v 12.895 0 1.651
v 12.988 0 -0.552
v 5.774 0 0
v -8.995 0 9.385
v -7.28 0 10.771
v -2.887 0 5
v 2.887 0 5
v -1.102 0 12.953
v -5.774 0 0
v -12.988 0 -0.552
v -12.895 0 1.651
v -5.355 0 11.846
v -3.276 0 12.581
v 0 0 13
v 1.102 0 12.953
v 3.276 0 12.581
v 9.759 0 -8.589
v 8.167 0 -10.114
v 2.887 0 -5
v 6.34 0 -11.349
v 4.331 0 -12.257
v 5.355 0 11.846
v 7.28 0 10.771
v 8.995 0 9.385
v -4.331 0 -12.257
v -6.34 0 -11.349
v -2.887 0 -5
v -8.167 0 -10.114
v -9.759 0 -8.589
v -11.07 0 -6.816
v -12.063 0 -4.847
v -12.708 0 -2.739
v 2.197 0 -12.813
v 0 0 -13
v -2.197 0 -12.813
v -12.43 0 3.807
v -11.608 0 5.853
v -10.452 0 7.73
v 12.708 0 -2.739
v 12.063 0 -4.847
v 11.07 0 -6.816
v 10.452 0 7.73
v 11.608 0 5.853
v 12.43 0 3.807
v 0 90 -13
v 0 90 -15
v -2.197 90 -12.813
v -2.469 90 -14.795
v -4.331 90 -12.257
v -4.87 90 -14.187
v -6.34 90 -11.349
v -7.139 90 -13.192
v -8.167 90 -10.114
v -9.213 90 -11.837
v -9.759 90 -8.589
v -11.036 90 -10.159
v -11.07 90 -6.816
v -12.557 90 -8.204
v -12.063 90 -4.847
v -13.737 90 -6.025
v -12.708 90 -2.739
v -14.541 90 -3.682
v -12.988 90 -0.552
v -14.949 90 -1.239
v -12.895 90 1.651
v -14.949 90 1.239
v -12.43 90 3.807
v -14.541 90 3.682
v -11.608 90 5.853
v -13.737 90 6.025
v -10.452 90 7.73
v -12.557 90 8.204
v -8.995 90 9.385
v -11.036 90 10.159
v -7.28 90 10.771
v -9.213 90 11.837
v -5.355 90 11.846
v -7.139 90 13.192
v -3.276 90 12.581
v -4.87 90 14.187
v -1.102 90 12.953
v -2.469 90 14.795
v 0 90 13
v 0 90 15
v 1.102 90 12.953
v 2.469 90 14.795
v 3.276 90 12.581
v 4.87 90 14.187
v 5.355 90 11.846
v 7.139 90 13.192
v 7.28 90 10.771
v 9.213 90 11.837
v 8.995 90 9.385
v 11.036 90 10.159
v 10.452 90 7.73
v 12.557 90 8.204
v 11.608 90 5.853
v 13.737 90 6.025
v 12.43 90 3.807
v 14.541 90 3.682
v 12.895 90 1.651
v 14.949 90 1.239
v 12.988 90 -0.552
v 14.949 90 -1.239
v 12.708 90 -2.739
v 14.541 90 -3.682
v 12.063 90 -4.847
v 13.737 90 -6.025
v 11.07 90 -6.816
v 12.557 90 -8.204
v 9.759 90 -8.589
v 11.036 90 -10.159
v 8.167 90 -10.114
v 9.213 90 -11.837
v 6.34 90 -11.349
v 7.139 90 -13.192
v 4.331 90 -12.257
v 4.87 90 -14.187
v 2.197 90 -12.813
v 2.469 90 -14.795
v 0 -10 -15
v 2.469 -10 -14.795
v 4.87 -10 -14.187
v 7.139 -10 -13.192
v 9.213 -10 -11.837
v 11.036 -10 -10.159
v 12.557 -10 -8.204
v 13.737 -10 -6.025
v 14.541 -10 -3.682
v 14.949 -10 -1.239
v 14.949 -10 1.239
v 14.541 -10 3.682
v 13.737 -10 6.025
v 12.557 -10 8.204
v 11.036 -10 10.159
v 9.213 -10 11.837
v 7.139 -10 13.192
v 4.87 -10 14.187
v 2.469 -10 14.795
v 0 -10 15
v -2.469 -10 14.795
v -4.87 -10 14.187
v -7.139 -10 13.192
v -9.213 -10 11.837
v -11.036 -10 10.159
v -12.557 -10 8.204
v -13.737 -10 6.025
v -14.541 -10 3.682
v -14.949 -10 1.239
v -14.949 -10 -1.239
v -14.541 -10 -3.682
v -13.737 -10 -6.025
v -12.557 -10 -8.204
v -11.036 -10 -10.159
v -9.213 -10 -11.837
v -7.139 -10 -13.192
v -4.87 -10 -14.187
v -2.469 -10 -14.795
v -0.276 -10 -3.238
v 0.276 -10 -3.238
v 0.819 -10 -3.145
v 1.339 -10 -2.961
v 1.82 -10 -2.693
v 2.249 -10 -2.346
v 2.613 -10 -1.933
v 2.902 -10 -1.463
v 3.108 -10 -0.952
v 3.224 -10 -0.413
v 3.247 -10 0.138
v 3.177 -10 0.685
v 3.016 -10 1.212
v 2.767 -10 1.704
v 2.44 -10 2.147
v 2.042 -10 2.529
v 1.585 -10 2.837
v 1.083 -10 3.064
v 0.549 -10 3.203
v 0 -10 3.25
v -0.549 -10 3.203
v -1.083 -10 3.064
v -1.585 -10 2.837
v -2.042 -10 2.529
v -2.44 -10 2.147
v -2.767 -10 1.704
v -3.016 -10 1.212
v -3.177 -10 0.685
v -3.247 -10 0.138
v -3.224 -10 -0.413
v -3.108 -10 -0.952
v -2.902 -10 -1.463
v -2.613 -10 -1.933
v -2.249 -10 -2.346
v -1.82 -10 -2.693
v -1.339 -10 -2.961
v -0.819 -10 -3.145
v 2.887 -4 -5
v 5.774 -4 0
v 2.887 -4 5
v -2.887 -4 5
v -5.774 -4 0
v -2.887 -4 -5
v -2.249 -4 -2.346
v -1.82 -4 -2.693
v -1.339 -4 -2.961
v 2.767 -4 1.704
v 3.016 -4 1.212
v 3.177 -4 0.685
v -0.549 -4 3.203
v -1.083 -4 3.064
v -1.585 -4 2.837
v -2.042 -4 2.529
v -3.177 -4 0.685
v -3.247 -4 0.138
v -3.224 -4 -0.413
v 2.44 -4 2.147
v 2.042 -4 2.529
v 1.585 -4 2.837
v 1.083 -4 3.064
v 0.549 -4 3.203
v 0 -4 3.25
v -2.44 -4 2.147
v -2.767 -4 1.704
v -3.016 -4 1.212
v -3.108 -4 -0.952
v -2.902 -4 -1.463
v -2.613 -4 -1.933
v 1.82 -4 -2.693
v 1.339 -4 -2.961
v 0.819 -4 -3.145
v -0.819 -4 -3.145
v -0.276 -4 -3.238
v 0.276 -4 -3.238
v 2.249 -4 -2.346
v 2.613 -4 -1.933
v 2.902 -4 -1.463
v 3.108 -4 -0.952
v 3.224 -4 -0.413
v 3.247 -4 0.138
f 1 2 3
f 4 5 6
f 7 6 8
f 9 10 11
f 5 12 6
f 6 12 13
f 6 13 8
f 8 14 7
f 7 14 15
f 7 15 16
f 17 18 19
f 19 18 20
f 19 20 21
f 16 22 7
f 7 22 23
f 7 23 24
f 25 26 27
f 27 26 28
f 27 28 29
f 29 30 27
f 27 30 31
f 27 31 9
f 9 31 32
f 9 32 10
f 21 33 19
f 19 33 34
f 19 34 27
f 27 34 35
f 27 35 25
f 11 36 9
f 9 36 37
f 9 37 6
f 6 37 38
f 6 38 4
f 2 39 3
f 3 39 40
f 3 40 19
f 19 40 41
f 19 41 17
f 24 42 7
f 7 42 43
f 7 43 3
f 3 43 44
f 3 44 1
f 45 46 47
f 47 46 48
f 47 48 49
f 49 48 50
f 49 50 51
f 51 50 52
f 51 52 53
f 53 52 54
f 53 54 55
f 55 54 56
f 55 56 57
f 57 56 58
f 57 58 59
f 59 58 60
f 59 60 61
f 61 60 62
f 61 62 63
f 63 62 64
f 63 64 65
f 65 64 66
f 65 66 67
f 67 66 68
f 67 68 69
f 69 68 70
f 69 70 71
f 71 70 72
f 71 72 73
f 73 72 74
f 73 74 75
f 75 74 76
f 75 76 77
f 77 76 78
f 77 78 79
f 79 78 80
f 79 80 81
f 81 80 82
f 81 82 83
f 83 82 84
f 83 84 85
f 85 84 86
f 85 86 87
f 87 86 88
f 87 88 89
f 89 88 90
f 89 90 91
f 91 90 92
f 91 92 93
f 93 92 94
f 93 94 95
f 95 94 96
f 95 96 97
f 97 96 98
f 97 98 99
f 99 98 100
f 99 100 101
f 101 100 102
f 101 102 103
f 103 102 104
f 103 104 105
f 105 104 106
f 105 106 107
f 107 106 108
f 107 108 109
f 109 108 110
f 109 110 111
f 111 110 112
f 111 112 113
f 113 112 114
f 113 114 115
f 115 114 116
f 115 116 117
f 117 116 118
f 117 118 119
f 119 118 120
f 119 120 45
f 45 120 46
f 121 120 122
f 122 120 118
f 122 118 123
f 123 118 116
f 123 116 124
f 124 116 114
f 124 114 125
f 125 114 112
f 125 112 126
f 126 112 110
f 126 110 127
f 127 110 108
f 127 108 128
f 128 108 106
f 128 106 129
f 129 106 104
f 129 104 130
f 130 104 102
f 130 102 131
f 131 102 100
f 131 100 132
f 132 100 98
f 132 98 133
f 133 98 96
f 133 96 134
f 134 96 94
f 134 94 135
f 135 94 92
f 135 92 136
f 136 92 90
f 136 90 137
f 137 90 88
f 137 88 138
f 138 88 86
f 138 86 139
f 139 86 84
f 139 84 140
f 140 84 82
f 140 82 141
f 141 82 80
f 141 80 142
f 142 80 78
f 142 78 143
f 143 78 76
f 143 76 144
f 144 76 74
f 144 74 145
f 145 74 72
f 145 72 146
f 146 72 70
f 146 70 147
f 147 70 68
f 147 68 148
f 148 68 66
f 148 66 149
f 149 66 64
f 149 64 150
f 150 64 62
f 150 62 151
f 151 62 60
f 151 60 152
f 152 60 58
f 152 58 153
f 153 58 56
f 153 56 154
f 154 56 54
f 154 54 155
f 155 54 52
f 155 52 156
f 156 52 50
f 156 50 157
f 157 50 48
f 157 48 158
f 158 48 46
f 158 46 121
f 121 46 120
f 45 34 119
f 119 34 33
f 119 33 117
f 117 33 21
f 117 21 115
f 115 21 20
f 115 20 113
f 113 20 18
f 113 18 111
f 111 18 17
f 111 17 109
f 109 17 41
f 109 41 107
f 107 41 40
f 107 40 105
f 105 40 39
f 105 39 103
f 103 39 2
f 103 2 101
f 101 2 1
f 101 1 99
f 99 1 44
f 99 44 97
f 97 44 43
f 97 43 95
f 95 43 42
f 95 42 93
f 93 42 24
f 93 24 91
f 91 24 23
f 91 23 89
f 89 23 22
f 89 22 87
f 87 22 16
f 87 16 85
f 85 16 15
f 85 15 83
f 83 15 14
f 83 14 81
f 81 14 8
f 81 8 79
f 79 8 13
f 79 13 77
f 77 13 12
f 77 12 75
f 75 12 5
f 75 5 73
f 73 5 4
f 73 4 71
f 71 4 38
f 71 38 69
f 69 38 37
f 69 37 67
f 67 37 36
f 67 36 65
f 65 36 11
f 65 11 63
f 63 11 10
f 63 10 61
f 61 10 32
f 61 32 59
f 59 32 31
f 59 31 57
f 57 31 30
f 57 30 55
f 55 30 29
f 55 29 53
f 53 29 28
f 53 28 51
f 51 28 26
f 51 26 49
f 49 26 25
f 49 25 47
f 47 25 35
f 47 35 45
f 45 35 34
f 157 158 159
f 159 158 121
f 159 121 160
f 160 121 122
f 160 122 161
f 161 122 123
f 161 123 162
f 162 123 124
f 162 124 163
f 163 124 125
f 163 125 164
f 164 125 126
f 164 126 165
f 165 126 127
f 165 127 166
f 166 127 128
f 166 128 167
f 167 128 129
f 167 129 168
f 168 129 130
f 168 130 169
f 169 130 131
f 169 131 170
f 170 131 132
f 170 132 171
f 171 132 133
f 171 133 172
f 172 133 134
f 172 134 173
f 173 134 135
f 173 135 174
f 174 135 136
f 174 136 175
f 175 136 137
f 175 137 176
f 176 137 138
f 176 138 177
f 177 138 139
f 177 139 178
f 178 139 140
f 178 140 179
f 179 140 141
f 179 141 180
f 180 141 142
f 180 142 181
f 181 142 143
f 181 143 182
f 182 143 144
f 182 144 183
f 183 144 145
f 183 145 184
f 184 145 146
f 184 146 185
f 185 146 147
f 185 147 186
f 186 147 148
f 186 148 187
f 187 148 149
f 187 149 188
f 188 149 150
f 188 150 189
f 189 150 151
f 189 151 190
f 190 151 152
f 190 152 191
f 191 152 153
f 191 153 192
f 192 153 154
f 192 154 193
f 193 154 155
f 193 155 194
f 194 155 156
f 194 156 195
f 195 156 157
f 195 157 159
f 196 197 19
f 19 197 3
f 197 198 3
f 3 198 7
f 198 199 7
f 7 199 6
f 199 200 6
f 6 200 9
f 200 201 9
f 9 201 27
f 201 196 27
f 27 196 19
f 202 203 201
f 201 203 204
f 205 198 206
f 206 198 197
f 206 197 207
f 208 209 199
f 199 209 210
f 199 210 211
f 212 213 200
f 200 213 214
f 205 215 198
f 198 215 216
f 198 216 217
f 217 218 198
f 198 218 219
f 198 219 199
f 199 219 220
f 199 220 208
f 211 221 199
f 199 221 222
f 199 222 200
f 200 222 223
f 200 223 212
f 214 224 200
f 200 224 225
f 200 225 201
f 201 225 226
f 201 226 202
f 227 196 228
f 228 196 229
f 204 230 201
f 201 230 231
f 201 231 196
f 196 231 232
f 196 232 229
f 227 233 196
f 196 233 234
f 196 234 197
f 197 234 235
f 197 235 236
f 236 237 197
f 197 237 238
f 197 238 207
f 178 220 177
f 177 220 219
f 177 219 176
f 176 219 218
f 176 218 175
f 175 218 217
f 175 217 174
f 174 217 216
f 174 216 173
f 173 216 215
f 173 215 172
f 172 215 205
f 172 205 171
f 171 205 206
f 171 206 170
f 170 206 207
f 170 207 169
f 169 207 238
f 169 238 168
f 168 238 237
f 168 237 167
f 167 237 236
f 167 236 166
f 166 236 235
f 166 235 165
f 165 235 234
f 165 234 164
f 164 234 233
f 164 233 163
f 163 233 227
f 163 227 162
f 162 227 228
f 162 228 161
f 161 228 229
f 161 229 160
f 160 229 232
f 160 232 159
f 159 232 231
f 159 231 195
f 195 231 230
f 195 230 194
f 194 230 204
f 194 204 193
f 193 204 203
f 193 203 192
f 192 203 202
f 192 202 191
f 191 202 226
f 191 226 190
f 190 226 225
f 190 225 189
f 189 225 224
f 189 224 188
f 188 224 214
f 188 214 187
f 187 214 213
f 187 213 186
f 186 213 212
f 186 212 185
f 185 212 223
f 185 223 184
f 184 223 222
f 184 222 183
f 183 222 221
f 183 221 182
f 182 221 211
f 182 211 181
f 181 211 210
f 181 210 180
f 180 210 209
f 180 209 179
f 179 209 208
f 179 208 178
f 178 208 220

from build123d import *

# Parameters (mm, degrees)
SKETCH_1_R          = 15
SKETCH_1_R_2        = 13
EXTRUDE_1_DEPTH     = 90
EXTRUDE_START       = 10
SKETCH_2_R          = 15
EXTRUDE_2_DEPTH     = 10
CUT_EXTRUDE_1_DEPTH = 4
SKETCH_4_R          = 3.25
CUT_EXTRUDE_2_DEPTH = 97.363893653


with BuildPart() as part:
    # Эскиз1 → Бобышка-Вытянуть1 (new body)
    with BuildSketch(Plane(origin=(0, 0, 0), x_dir=(1, 0, 0), z_dir=(0, 1, 0))):
        with Locations(Location((0, 0, 0), (0, 0, 90))):
            Circle(SKETCH_1_R)
        with Locations(Location((0, 0, 0), (0, 0, 90))):
            Circle(SKETCH_1_R_2, mode=Mode.SUBTRACT)
    extrude(amount=EXTRUDE_1_DEPTH)

    # Эскиз2 → Бобышка-Вытянуть2 (add)
    with BuildSketch(Plane.XZ.offset(EXTRUDE_START)):
        with Locations(Location((0, 0, 0), (0, 0, 270))):
            Circle(SKETCH_2_R)
    extrude(amount=-EXTRUDE_2_DEPTH)

    # Эскиз3 → Вырез-Вытянуть1 (cut)
    with BuildSketch(Plane(origin=(0, 0, 0), x_dir=(1, 0, 0), z_dir=(0, 1, 0))):
        Polygon((2.886751346, 5), (-2.886751346, 5), (-5.773502692, 0), (-2.886751346, -5), (2.886751346, -5), (5.773502692, 0), align=None)
    extrude(amount=-CUT_EXTRUDE_1_DEPTH, mode=Mode.SUBTRACT)

    # Эскиз4 → Вырез-Вытянуть2 (cut, through all)
    with BuildSketch(Plane(origin=(0, -4, 0), x_dir=(1, 0, 0), z_dir=(0, 1, 0))):
        with Locations(Location((0, 0, 0), (0, 0, 270))):
            Circle(SKETCH_4_R)
    extrude(amount=-CUT_EXTRUDE_2_DEPTH, mode=Mode.SUBTRACT)


solid = part.part
